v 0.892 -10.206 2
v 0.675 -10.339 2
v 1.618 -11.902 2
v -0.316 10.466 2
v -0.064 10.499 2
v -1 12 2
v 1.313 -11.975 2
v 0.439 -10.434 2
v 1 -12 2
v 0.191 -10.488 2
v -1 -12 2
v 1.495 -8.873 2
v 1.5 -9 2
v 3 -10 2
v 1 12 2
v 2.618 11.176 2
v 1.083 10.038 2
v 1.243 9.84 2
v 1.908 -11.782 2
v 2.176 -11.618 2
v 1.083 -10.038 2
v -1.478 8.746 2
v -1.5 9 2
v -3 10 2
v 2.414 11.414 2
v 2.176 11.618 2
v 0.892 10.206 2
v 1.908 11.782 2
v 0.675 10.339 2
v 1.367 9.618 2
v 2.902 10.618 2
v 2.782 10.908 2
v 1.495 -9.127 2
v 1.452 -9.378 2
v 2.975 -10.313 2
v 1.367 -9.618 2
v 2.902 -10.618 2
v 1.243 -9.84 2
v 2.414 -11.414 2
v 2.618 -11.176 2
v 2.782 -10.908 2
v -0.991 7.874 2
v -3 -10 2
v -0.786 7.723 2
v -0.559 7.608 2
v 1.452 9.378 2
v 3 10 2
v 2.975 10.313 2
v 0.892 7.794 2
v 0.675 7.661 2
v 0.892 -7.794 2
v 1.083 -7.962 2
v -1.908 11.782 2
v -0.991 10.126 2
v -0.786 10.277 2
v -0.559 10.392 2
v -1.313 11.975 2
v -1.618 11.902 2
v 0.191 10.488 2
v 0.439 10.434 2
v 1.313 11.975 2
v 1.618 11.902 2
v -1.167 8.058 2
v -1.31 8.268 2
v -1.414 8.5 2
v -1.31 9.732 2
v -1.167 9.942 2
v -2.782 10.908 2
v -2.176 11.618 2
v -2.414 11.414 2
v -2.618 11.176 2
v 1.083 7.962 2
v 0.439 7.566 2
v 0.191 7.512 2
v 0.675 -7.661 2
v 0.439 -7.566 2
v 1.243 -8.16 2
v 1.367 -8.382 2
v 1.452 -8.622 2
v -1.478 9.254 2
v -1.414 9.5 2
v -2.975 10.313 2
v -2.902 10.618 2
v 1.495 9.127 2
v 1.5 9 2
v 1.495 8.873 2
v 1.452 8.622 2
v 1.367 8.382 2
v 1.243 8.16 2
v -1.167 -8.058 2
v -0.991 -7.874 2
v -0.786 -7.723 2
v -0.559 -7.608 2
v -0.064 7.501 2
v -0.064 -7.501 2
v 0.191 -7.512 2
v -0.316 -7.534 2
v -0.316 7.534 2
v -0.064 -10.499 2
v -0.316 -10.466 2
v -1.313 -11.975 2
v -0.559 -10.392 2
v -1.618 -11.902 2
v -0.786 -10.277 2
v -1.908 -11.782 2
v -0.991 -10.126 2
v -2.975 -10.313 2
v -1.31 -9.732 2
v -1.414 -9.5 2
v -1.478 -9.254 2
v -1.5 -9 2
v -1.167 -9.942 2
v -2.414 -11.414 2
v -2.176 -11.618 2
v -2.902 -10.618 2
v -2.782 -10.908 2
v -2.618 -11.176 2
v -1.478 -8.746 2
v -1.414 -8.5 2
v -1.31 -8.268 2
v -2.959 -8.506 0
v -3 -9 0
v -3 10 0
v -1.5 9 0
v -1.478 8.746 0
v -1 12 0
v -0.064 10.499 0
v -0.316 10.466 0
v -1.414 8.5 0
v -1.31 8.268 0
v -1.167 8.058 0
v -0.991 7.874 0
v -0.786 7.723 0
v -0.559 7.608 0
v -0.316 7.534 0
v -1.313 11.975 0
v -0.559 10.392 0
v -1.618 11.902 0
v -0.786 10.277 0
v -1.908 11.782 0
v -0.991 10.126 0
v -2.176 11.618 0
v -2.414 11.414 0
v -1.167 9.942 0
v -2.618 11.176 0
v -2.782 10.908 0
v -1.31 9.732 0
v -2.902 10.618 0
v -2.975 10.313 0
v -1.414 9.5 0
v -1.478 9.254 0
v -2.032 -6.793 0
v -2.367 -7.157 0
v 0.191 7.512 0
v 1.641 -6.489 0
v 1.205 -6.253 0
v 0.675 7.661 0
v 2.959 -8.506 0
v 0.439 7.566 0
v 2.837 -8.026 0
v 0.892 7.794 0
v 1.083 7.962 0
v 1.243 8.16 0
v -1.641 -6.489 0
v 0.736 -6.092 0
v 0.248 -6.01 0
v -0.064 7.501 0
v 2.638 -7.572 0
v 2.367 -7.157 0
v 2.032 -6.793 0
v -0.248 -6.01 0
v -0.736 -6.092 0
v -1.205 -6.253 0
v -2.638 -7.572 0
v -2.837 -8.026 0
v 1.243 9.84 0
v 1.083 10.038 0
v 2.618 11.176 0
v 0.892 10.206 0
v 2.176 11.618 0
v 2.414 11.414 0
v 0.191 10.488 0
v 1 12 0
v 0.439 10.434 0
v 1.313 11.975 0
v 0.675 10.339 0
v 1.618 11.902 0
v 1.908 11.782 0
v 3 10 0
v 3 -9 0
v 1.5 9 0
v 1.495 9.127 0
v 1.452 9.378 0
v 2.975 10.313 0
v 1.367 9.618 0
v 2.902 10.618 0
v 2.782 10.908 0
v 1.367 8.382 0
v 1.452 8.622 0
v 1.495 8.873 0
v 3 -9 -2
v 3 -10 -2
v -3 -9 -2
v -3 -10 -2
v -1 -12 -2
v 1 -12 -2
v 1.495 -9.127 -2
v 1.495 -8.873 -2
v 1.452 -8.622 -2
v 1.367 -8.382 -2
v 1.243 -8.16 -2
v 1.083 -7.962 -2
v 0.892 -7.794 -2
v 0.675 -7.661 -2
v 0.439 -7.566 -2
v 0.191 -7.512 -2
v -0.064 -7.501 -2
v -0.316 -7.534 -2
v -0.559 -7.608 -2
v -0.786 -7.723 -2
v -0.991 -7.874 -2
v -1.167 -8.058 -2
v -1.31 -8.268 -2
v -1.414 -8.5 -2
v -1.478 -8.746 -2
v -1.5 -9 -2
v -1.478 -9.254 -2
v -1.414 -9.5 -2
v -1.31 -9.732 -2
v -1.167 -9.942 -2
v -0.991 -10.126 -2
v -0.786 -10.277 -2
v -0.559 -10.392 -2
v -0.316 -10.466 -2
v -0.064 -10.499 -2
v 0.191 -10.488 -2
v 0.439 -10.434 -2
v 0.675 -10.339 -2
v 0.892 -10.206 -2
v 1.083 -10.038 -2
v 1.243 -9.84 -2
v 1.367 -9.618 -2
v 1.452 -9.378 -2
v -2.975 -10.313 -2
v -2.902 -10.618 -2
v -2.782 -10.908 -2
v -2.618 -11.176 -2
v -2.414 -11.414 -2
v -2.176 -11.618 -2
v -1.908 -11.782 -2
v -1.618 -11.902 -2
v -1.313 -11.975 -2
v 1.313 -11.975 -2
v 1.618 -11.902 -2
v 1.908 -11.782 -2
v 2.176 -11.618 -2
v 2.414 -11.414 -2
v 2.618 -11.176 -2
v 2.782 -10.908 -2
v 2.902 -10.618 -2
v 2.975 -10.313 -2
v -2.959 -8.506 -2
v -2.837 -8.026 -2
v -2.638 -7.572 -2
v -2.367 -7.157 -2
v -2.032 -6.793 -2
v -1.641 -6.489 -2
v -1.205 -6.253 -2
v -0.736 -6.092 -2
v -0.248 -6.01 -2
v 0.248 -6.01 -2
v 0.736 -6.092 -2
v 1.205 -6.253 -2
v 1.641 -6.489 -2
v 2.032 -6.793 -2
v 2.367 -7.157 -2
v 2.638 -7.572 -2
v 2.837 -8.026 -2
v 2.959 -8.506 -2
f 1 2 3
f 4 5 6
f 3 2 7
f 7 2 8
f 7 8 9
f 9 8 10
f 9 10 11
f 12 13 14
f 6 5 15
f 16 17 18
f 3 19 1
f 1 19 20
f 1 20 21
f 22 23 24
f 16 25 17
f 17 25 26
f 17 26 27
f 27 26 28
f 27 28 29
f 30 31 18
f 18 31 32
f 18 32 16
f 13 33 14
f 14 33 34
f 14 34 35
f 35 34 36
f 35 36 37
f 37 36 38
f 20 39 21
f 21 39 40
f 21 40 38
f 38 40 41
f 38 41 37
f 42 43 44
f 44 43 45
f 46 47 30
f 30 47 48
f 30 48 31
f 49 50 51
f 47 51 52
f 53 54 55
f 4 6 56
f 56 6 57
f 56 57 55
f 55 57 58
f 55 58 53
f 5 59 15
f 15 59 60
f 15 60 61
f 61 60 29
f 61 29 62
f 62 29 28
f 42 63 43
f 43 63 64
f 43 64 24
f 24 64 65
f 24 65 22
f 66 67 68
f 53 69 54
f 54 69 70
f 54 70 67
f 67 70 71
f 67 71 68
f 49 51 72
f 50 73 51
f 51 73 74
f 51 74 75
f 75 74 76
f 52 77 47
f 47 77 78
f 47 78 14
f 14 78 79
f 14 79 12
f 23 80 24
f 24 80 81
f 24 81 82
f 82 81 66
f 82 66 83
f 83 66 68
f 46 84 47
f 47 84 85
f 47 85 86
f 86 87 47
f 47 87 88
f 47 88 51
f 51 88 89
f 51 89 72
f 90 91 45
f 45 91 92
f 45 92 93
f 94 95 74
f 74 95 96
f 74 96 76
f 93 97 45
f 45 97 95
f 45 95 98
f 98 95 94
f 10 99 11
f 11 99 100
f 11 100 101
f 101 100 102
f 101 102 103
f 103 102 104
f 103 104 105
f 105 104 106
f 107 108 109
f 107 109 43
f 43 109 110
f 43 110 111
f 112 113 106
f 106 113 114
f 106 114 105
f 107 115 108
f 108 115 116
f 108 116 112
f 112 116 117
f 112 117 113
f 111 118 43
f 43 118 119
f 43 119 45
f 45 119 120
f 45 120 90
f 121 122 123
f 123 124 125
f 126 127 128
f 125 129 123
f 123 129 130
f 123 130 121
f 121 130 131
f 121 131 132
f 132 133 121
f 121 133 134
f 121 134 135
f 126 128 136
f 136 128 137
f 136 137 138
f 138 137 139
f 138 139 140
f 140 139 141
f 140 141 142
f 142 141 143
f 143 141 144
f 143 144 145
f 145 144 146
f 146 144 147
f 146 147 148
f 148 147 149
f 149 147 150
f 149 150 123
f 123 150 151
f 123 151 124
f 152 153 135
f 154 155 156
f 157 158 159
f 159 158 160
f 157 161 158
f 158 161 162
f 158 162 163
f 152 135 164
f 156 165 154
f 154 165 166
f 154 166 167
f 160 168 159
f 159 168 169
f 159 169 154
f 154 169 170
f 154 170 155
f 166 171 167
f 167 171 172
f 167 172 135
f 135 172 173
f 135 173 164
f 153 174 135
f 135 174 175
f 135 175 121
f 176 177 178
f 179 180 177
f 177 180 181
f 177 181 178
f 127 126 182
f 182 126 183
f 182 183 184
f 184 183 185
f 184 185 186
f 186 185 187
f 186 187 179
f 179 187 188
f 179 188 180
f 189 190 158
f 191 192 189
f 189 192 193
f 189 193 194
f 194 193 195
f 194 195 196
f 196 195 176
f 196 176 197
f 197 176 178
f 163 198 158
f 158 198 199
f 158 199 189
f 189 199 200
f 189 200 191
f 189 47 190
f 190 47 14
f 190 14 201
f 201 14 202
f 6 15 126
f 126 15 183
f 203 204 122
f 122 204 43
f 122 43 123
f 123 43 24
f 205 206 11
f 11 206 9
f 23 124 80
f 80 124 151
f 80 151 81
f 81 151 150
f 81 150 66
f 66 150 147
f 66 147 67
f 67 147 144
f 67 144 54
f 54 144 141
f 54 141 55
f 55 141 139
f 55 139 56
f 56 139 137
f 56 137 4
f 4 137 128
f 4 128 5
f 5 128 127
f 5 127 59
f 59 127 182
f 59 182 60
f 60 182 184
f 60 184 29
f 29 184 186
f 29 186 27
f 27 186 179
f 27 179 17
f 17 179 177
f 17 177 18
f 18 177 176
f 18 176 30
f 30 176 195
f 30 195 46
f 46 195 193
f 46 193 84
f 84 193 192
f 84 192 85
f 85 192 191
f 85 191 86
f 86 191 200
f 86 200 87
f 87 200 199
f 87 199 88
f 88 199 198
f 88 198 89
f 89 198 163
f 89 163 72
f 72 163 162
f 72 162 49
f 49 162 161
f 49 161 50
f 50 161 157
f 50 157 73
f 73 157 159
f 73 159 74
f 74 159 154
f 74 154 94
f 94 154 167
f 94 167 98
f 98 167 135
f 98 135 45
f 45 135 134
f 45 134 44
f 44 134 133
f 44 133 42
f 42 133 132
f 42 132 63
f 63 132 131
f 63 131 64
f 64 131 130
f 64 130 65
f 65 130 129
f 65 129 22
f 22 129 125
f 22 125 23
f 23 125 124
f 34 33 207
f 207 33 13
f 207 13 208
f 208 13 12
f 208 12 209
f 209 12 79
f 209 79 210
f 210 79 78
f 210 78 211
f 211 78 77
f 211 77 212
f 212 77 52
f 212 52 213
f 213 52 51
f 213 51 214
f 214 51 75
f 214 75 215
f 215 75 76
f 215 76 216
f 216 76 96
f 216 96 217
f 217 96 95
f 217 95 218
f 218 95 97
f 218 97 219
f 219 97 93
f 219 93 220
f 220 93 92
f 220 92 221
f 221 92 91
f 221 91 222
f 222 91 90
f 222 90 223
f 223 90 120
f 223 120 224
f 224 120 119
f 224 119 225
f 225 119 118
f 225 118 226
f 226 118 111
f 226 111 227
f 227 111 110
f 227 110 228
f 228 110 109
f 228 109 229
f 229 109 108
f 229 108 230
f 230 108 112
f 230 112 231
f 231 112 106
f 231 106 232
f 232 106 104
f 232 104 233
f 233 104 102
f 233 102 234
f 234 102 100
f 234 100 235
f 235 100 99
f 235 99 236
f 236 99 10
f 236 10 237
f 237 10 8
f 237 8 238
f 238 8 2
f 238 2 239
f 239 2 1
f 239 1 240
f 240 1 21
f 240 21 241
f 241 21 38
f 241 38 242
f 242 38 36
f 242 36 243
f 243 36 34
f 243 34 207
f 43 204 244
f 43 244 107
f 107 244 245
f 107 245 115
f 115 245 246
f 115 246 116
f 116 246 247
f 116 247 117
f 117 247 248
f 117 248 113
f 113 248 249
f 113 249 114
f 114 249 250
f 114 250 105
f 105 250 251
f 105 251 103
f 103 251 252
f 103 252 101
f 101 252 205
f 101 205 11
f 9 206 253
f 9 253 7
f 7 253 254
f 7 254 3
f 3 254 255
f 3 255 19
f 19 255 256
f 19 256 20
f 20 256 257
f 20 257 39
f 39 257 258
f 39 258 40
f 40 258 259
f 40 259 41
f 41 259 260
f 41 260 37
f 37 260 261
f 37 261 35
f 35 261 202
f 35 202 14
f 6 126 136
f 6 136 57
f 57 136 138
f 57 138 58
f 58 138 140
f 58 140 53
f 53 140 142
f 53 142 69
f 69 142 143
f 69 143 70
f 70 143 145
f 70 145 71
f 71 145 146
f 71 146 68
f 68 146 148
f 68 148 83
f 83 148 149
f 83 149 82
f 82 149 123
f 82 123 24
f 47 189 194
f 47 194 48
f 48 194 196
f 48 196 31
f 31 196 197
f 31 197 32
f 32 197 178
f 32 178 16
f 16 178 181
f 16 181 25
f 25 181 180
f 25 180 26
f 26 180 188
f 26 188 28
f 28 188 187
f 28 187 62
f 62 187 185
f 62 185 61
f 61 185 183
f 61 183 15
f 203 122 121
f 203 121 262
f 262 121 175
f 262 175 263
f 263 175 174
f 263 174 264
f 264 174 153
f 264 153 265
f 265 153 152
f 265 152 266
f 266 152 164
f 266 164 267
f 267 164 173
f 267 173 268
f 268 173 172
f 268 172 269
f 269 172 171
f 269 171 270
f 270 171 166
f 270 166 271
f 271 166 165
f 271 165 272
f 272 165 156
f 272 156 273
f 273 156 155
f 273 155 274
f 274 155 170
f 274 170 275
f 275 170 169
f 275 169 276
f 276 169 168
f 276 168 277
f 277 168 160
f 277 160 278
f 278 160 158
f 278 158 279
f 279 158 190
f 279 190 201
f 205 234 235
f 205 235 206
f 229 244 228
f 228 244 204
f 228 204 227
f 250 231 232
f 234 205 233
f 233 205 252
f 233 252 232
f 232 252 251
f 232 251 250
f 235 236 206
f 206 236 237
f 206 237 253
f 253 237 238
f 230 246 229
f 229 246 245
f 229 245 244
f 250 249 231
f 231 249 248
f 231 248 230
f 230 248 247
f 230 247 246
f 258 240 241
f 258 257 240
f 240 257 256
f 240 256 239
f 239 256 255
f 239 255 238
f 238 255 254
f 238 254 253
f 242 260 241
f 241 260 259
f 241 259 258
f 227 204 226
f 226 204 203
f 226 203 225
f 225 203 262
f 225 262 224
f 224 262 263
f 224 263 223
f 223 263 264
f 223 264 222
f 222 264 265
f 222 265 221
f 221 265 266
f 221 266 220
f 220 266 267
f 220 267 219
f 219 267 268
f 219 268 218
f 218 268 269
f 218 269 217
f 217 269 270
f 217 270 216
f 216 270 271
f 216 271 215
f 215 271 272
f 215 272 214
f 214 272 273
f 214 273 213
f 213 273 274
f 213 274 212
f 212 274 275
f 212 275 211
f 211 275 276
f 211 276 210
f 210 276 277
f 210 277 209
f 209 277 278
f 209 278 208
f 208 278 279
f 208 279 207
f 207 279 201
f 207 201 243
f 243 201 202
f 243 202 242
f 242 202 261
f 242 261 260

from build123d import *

# Parameters (mm, degrees)
ESQUISSE2_W        = 6
ESQUISSE2_H        = 24
ESQUISSE2_R        = 1.5
BOSS_EXTRU_2_DEPTH = 2
CONG_2_R           = 2
ESQUISSE3_R        = 3
ESQUISSE3_R_2      = 1.5
BOSS_EXTRU_3_DEPTH = 2


with BuildPart() as part:
    # Esquisse2 → Boss.-Extru.2 (new body)
    with BuildSketch(Plane.XY):
        Rectangle(ESQUISSE2_W, ESQUISSE2_H)
        with Locations((0, 9)):
            Circle(ESQUISSE2_R, mode=Mode.SUBTRACT)
        with Locations((0, -9)):
            Circle(ESQUISSE2_R, mode=Mode.SUBTRACT)
    extrude(amount=BOSS_EXTRU_2_DEPTH)

    # Congé2
    cong_2_edges = [part.edges().sort_by_distance(p)[0] for p in [
        (3, -12, 1),
        (-3, -12, 1),
        (-3, 12, 1),
        (3, 12, 1),
    ]]
    fillet(cong_2_edges, radius=CONG_2_R)

    # Esquisse3 → Boss.-Extru.3 (add)
    # profile 1 of 3: a face of its own
    with BuildSketch(Plane(origin=(0, 0, 0), x_dir=(-1, 0, 0), z_dir=(0, 0, -1))):
        with Locations((0, -9)):
            Circle(ESQUISSE3_R)
        with Locations((0, -9)):
            Circle(ESQUISSE3_R_2, mode=Mode.SUBTRACT)
    # profile 2 of 3: a face of its own
    with BuildSketch(Plane(origin=(0, 0, 0), x_dir=(-1, 0, 0), z_dir=(0, 0, -1))):
        with BuildLine():
            ThreePointArc((3, -9), (2.121320344, -11.121320344), (0, -12))
            Line((0, -12), (1, -12))
            ThreePointArc((1, -12), (2.414213562, -11.414213562), (3, -10))
            Line((3, -10), (3, -9))
        make_face()
    # profile 3 of 3: a face of its own
    with BuildSketch(Plane(origin=(0, 0, 0), x_dir=(-1, 0, 0), z_dir=(0, 0, -1))):
        with BuildLine():
            ThreePointArc((-3, -10), (-2.414213562, -11.414213562), (-1, -12))
            Line((-1, -12), (0, -12))
            ThreePointArc((0, -12), (-2.121320344, -11.121320344), (-3, -9))
            Line((-3, -9), (-3, -10))
        make_face()
    extrude(amount=BOSS_EXTRU_3_DEPTH)


solid = part.part
